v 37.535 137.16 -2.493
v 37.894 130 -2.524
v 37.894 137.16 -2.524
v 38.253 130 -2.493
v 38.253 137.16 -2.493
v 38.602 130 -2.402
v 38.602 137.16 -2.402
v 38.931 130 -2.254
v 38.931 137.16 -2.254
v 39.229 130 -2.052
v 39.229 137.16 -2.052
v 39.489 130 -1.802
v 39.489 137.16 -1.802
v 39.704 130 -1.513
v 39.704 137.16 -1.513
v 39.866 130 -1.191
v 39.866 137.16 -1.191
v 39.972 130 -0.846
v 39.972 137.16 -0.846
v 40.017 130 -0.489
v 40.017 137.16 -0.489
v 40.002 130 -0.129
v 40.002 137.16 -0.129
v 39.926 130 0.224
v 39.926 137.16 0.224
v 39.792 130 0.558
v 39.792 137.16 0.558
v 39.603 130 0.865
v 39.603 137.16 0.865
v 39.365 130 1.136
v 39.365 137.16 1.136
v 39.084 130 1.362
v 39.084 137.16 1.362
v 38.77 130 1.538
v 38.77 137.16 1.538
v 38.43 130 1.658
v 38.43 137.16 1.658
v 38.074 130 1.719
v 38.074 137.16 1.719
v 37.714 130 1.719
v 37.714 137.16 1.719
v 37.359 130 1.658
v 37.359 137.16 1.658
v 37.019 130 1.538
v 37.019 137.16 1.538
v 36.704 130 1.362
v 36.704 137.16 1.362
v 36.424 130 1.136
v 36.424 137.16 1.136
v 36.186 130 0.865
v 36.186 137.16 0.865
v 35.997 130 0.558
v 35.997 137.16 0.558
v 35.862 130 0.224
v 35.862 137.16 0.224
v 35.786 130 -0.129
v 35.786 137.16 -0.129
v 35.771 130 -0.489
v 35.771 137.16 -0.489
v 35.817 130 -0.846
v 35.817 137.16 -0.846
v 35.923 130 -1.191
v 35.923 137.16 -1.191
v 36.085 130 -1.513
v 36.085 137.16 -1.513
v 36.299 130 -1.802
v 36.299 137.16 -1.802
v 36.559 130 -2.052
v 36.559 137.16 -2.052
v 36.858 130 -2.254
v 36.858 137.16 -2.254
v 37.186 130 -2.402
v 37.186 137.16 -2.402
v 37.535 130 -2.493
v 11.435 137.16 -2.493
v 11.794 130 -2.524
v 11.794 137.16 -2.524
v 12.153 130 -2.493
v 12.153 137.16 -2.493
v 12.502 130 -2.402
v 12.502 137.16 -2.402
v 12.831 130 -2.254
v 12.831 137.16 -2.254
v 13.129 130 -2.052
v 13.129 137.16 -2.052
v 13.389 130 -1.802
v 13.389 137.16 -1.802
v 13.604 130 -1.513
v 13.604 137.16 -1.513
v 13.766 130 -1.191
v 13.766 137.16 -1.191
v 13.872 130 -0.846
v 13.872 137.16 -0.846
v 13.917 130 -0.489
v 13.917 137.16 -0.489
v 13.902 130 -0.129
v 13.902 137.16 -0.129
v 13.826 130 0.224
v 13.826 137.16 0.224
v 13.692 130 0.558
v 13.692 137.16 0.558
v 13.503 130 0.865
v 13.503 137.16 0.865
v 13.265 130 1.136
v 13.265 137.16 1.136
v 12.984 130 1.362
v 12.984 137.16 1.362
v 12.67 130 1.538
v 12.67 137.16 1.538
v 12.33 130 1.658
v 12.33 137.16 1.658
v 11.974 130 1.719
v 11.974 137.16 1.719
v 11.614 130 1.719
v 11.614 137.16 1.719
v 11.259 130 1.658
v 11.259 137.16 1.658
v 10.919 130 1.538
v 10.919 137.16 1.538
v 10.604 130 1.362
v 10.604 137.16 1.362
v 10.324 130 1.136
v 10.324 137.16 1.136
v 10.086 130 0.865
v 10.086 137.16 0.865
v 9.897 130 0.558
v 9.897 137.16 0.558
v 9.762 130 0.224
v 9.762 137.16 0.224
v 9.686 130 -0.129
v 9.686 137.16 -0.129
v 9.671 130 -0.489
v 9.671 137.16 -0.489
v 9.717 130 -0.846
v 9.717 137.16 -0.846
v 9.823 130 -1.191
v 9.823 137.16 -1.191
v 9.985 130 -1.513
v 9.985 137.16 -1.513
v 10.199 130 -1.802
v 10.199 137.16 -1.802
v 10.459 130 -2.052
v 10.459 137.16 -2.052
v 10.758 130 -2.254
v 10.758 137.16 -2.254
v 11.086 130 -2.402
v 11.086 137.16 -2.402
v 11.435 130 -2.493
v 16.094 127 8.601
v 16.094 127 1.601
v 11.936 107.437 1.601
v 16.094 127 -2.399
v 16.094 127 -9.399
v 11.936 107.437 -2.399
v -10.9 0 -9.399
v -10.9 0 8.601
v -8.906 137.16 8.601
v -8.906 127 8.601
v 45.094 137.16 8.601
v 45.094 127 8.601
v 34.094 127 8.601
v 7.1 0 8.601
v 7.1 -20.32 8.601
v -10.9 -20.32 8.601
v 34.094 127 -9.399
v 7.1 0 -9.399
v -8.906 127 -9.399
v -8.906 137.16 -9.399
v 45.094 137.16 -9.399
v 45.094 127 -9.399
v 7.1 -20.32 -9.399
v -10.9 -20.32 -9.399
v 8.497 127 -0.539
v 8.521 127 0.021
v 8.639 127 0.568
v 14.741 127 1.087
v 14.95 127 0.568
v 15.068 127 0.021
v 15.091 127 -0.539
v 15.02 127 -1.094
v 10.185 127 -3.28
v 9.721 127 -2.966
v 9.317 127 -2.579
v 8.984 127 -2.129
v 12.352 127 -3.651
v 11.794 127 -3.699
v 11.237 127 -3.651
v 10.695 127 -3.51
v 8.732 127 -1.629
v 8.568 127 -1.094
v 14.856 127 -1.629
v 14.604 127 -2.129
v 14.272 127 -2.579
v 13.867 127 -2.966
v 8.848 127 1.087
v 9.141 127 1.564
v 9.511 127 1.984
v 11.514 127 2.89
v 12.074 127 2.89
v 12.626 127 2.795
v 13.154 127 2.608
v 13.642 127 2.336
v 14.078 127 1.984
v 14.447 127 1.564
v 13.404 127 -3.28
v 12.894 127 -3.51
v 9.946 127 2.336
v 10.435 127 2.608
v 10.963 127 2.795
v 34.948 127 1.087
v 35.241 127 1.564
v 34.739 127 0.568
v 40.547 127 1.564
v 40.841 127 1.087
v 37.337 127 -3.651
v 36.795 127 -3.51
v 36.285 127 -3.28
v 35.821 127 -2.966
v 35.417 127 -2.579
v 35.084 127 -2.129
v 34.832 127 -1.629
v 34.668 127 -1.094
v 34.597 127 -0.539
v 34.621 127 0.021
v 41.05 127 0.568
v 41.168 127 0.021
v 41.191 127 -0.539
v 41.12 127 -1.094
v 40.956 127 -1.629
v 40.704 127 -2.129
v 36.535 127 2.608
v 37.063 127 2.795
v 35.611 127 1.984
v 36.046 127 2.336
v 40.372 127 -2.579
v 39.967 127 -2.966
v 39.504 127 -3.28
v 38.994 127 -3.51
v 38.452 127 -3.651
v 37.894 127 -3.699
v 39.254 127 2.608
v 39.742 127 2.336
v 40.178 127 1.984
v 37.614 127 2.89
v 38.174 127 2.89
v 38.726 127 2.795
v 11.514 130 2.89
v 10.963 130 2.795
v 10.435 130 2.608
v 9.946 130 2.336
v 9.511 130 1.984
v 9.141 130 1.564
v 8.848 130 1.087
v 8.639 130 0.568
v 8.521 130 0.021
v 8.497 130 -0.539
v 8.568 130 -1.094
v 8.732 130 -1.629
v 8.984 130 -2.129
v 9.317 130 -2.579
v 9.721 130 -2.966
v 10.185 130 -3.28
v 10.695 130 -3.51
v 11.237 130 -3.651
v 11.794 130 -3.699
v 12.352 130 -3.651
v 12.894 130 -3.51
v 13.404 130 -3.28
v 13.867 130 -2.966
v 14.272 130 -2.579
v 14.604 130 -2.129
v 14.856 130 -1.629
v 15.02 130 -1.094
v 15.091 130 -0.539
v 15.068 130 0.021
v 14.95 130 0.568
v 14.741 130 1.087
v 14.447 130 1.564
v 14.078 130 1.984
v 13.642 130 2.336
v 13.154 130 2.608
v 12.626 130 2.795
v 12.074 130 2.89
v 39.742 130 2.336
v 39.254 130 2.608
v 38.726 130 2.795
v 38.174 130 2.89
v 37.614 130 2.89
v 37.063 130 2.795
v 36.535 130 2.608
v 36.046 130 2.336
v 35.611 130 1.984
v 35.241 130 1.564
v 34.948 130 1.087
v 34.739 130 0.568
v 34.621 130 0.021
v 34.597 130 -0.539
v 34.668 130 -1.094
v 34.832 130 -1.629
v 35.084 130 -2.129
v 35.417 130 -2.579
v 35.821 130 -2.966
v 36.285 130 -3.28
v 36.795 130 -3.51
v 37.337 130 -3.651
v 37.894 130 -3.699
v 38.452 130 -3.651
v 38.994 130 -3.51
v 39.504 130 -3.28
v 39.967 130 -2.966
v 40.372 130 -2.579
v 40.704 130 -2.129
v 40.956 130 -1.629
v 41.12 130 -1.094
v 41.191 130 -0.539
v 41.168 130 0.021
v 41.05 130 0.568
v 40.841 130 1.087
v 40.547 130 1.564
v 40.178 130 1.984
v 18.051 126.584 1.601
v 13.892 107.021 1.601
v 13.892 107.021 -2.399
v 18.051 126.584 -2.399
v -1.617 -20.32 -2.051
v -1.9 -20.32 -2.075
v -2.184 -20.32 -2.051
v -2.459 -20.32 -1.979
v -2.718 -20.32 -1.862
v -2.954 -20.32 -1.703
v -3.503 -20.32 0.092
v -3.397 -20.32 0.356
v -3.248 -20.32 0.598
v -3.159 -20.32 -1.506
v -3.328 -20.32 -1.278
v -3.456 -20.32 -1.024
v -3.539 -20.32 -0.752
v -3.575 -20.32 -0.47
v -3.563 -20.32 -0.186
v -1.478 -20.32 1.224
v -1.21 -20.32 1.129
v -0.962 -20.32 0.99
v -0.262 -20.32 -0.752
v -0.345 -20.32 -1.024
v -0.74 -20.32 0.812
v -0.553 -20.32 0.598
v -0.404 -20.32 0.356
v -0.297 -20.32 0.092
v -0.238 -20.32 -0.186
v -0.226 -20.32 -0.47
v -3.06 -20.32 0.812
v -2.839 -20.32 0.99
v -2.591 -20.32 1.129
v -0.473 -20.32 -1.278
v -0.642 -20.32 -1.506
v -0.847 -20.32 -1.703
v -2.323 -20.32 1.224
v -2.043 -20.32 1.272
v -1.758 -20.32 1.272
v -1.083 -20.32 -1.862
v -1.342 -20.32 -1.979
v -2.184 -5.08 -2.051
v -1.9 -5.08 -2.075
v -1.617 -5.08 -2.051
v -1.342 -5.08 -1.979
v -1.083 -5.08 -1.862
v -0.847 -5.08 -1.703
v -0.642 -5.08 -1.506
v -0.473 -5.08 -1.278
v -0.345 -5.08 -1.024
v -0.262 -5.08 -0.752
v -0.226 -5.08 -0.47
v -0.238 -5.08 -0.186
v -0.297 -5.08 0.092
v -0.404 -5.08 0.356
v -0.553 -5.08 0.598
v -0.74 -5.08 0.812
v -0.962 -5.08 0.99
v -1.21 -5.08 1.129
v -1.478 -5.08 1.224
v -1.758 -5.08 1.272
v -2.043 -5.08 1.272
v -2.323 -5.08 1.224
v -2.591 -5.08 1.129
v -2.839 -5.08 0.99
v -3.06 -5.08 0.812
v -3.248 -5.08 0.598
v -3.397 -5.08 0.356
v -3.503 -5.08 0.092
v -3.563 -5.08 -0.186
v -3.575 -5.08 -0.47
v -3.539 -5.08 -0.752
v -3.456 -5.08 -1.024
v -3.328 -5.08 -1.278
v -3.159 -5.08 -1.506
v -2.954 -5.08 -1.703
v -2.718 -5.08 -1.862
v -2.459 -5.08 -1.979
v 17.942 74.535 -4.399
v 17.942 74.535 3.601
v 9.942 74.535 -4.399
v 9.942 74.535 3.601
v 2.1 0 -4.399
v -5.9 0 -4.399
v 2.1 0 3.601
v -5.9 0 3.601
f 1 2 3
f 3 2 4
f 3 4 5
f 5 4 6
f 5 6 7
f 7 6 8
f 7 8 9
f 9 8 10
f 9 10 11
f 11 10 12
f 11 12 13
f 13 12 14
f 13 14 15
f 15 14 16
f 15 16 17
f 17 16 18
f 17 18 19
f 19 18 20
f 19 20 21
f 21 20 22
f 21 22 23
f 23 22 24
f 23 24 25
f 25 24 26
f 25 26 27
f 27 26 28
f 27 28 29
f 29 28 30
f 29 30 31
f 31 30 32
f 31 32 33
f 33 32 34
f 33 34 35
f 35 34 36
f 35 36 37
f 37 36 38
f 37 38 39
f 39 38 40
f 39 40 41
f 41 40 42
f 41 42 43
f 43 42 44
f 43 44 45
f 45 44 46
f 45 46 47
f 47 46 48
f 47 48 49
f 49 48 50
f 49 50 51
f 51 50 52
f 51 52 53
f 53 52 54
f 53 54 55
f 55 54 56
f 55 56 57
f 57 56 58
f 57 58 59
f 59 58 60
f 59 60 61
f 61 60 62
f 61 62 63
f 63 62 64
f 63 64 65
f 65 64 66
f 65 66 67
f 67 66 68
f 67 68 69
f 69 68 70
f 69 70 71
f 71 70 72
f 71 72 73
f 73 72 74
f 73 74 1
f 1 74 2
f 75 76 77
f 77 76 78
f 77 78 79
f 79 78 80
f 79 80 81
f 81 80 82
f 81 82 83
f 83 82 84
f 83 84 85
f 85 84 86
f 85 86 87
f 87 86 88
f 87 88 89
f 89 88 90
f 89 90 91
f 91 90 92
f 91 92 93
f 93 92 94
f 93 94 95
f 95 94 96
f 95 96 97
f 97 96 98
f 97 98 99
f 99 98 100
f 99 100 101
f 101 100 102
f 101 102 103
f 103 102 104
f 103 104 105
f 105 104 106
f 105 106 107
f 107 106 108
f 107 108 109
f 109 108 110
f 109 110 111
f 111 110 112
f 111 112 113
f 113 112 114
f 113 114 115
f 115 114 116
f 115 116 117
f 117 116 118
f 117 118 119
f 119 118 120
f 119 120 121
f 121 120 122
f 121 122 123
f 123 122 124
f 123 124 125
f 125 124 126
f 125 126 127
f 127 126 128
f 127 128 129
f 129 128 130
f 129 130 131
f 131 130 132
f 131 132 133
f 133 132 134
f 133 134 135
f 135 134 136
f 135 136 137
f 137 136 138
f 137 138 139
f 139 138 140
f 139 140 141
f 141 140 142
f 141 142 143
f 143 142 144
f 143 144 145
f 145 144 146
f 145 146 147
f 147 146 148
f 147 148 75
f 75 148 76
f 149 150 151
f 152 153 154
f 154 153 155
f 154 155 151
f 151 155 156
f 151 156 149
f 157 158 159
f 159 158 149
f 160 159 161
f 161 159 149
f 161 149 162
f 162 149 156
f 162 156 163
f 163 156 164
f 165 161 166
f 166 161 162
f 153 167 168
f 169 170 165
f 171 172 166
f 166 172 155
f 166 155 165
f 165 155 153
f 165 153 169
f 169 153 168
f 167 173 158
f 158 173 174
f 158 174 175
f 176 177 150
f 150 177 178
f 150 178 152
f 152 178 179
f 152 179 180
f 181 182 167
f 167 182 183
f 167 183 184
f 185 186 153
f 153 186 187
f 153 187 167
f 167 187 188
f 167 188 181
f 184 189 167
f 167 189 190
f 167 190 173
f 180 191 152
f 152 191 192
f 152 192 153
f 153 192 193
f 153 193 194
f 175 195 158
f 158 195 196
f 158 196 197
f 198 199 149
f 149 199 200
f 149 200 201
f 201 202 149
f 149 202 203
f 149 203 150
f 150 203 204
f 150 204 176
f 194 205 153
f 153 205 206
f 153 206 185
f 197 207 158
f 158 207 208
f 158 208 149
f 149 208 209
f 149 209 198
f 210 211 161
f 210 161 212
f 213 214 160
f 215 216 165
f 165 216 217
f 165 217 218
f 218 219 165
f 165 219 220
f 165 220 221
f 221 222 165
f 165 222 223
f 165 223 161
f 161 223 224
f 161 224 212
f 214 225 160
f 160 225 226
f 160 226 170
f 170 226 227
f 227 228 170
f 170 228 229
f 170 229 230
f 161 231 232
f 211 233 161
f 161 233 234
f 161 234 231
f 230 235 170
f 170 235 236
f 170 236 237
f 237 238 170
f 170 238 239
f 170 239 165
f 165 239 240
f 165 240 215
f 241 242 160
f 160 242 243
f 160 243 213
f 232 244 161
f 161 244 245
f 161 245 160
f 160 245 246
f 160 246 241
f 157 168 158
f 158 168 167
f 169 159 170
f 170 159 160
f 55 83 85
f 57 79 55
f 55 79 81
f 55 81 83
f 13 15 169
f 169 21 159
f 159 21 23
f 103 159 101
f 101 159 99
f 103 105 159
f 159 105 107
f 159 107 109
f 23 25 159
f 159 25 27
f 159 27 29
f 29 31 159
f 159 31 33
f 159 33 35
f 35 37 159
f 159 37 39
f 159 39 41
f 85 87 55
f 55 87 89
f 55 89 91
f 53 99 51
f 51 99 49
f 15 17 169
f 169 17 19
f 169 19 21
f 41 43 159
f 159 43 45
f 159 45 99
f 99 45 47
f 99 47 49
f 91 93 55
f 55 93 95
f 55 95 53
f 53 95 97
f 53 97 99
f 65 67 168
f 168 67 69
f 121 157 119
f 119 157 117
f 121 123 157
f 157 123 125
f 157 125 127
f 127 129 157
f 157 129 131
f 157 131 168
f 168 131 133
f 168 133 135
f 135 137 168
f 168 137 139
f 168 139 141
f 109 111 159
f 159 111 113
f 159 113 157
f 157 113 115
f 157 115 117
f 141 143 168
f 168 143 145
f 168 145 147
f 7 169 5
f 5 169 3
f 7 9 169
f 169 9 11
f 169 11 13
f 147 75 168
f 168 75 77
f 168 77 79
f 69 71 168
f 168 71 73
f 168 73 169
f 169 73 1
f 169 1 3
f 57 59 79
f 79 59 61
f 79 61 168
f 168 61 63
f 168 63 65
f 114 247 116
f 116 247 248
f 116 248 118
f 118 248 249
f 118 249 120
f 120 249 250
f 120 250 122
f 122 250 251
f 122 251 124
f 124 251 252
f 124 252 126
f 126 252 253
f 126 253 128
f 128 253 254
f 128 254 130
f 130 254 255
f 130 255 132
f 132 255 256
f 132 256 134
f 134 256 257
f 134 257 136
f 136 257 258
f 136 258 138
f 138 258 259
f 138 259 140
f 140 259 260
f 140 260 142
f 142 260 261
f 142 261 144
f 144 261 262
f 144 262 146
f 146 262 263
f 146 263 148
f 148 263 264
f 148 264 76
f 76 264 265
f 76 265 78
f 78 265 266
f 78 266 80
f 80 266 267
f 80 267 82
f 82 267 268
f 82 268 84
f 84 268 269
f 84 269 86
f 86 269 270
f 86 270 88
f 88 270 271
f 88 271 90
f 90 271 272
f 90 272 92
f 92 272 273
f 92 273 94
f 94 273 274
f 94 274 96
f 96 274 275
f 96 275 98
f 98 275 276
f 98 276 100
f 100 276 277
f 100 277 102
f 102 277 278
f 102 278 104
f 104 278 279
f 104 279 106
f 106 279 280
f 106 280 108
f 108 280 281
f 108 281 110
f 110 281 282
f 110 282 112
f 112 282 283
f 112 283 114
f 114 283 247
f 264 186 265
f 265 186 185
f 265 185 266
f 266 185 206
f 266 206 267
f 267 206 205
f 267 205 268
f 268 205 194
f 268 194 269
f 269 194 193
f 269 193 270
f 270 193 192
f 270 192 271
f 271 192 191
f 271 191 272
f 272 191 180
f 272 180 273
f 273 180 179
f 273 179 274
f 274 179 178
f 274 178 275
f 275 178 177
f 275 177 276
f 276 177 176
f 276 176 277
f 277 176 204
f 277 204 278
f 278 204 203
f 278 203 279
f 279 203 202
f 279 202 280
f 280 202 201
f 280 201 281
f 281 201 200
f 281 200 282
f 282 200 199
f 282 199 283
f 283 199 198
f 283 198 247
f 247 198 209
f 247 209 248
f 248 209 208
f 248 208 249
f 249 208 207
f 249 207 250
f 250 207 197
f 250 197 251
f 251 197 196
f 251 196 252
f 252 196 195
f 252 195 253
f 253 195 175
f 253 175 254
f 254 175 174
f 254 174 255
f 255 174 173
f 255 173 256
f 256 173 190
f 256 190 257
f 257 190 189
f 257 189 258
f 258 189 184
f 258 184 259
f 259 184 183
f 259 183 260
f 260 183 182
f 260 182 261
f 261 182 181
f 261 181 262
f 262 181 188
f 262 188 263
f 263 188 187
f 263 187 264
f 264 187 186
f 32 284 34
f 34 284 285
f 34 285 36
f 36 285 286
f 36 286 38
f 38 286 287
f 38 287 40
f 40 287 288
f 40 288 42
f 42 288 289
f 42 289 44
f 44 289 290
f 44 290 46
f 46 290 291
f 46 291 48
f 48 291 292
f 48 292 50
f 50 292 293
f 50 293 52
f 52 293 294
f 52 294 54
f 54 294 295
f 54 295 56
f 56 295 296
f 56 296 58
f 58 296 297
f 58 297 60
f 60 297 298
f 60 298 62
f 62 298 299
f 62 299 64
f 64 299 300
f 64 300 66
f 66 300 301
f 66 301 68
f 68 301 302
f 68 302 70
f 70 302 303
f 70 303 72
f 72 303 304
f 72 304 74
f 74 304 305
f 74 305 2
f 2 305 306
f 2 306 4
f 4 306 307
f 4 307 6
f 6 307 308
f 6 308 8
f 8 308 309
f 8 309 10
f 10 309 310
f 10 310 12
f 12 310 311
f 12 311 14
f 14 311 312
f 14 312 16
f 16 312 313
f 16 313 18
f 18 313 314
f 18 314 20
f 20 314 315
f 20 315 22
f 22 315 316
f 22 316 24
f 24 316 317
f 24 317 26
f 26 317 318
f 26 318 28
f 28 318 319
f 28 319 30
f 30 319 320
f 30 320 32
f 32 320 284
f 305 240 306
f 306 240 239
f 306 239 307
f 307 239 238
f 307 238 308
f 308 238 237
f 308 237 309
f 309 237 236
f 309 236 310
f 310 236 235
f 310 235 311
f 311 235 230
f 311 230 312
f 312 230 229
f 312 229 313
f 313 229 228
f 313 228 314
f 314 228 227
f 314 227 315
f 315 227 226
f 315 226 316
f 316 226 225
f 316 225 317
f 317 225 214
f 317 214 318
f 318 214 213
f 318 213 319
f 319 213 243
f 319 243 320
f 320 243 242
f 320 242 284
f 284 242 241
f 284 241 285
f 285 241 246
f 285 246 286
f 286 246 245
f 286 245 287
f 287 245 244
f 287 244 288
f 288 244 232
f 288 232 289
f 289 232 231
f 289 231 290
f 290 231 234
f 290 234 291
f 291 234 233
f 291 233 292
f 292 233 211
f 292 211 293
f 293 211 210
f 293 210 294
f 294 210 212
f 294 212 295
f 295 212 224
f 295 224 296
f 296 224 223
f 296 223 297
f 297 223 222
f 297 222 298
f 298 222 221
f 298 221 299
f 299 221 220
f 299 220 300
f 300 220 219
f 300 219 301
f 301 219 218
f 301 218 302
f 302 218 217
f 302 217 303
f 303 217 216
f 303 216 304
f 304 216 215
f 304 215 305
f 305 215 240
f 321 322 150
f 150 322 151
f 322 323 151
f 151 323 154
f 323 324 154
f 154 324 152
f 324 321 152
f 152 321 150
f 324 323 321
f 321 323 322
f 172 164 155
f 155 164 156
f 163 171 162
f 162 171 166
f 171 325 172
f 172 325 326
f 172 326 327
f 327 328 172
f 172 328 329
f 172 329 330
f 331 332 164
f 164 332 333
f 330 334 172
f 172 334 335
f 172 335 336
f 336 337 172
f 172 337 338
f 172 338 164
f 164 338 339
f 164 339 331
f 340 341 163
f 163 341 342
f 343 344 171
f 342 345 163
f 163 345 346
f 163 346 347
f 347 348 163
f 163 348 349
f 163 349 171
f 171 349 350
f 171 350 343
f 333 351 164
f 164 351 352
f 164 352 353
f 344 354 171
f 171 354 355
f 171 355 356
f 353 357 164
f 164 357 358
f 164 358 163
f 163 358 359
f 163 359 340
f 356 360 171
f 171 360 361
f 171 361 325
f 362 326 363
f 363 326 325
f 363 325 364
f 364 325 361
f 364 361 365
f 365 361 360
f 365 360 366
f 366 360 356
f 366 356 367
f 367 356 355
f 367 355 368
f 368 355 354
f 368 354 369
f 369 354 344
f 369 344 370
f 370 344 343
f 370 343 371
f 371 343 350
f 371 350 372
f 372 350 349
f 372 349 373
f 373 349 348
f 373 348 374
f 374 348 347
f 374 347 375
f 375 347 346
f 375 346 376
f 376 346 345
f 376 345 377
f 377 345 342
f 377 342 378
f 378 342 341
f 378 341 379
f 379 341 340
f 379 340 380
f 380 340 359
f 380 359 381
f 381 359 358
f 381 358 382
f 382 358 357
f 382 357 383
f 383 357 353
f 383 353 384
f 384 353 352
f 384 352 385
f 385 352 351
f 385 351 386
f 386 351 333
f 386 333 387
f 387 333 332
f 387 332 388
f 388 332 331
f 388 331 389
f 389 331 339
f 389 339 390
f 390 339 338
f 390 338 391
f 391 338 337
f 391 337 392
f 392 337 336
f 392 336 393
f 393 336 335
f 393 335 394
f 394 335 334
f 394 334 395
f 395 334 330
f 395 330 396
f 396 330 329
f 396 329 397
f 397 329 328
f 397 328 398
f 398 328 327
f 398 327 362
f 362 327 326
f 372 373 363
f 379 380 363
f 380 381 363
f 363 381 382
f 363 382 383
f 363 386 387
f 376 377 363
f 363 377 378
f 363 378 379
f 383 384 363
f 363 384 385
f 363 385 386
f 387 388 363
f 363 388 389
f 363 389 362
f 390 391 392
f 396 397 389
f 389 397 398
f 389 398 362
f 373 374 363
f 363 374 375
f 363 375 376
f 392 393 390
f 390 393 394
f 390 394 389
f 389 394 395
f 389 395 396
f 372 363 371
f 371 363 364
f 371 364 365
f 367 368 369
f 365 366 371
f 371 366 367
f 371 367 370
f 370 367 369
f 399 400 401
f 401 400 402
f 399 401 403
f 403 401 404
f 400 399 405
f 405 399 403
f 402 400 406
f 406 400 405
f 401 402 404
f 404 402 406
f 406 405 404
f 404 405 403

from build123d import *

# Parameters (mm, degrees)
SKETCH1_W           = 18
SKETCH1_H           = 18
SKETCH3_W           = 54
SKETCH3_H           = 18
BOSS_EXTRUDE1_DEPTH = 10.16
SKETCH4_W           = 8
SKETCH4_H           = 8
SKETCH6_R           = 2.125
CUT_EXTRUDE1_DEPTH  = 136.095622661
SKETCH7_R           = 3.3
CUT_EXTRUDE2_DEPTH  = 3
SKETCH8_W           = 4
SKETCH8_H           = 20
CUT_EXTRUDE3_DEPTH  = 2
SKETCH9_W           = 18
SKETCH9_H           = 18
BOSS_EXTRUDE2_DEPTH = 20.32
SKETCH10_R          = 1.6764
CUT_EXTRUDE4_DEPTH  = 15.24


with BuildPart() as part:
    # Sweep1: sweep along a path in Sketch2
    with BuildLine(Plane.XY) as sweep1_path:
        Line((-10.900401277, 0), (16.094282055, 127))
    # Sketch1 → Sweep1 (sweep)
    with BuildSketch(Plane(origin=(0, 0, 0), x_dir=(1, 0, 0), z_dir=(0, 1, 0))):
        with Locations((-1.900401277, 0.398563086)):
            Rectangle(SKETCH1_W, SKETCH1_H)
    sweep(path=sweep1_path.line)

    # Sketch3 → Boss-Extrude1 (add)
    with BuildSketch(Plane(origin=(0, 127, 0), x_dir=(1, 0, 0), z_dir=(0, 1, 0))):
        with Locations((18.094282055, 0.398563086)):
            Rectangle(SKETCH3_W, SKETCH3_H)
    extrude(amount=BOSS_EXTRUDE1_DEPTH)

    # Cut-Sweep1: sweep along a path in Sketch5
    with BuildLine(Plane.XY.offset(8.601436914)) as cut_sweep1_path:
        Line((-5.900401277, 0), (9.942469563, 74.534847176))
    # Sketch4 → Cut-Sweep1 (sweep, cut)
    with BuildSketch(Plane.XZ):
        with Locations((-1.900401277, -0.398563086)):
            Rectangle(SKETCH4_W, SKETCH4_H)
    sweep(path=cut_sweep1_path.line, mode=Mode.SUBTRACT)

    # Sketch6 → Cut-Extrude1 (cut, through all)
    with BuildSketch(Plane.XZ.offset(-127)):
        with Locations(Location((37.894282055, -0.398563086, 0), (0, 0, 270))):
            Circle(SKETCH6_R)
        with Locations(Location((11.794282055, -0.398563086, 0), (0, 0, 270))):
            Circle(SKETCH6_R)
    extrude(amount=-CUT_EXTRUDE1_DEPTH, mode=Mode.SUBTRACT)

    # Sketch7 → Cut-Extrude2 (cut)
    with BuildSketch(Plane.XZ.offset(-127)):
        with Locations(Location((11.794282055, -0.398563086, 0), (0, 0, 270))):
            Circle(SKETCH7_R)
        with Locations(Location((37.894282055, -0.398563086, 0), (0, 0, 270))):
            Circle(SKETCH7_R)
    extrude(amount=-CUT_EXTRUDE2_DEPTH, mode=Mode.SUBTRACT)

    # Sketch8 → Cut-Extrude3 (cut)
    with BuildSketch(Plane(origin=(-10.429206675, 2.216796312, 0), x_dir=(0, 0, 1), z_dir=(-0.9781476007338064, 0.20791169081775596, 0))):
        with Locations((-0.398563086, 117.570934688)):
            Rectangle(SKETCH8_W, SKETCH8_H)
    extrude(amount=-CUT_EXTRUDE3_DEPTH, mode=Mode.SUBTRACT)

    # Sketch9 → Boss-Extrude2 (add)
    with BuildSketch(Plane.XZ):
        with Locations((-1.900401277, -0.398563086)):
            Rectangle(SKETCH9_W, SKETCH9_H)
    extrude(amount=BOSS_EXTRUDE2_DEPTH)

    # Sketch10 → Cut-Extrude4 (cut)
    with BuildSketch(Plane.XZ.offset(20.32)):
        with Locations(Location((-1.900401277, -0.398563086, 0), (0, 0, 270))):
            Circle(SKETCH10_R)
    extrude(amount=-CUT_EXTRUDE4_DEPTH, mode=Mode.SUBTRACT)


solid = part.part
